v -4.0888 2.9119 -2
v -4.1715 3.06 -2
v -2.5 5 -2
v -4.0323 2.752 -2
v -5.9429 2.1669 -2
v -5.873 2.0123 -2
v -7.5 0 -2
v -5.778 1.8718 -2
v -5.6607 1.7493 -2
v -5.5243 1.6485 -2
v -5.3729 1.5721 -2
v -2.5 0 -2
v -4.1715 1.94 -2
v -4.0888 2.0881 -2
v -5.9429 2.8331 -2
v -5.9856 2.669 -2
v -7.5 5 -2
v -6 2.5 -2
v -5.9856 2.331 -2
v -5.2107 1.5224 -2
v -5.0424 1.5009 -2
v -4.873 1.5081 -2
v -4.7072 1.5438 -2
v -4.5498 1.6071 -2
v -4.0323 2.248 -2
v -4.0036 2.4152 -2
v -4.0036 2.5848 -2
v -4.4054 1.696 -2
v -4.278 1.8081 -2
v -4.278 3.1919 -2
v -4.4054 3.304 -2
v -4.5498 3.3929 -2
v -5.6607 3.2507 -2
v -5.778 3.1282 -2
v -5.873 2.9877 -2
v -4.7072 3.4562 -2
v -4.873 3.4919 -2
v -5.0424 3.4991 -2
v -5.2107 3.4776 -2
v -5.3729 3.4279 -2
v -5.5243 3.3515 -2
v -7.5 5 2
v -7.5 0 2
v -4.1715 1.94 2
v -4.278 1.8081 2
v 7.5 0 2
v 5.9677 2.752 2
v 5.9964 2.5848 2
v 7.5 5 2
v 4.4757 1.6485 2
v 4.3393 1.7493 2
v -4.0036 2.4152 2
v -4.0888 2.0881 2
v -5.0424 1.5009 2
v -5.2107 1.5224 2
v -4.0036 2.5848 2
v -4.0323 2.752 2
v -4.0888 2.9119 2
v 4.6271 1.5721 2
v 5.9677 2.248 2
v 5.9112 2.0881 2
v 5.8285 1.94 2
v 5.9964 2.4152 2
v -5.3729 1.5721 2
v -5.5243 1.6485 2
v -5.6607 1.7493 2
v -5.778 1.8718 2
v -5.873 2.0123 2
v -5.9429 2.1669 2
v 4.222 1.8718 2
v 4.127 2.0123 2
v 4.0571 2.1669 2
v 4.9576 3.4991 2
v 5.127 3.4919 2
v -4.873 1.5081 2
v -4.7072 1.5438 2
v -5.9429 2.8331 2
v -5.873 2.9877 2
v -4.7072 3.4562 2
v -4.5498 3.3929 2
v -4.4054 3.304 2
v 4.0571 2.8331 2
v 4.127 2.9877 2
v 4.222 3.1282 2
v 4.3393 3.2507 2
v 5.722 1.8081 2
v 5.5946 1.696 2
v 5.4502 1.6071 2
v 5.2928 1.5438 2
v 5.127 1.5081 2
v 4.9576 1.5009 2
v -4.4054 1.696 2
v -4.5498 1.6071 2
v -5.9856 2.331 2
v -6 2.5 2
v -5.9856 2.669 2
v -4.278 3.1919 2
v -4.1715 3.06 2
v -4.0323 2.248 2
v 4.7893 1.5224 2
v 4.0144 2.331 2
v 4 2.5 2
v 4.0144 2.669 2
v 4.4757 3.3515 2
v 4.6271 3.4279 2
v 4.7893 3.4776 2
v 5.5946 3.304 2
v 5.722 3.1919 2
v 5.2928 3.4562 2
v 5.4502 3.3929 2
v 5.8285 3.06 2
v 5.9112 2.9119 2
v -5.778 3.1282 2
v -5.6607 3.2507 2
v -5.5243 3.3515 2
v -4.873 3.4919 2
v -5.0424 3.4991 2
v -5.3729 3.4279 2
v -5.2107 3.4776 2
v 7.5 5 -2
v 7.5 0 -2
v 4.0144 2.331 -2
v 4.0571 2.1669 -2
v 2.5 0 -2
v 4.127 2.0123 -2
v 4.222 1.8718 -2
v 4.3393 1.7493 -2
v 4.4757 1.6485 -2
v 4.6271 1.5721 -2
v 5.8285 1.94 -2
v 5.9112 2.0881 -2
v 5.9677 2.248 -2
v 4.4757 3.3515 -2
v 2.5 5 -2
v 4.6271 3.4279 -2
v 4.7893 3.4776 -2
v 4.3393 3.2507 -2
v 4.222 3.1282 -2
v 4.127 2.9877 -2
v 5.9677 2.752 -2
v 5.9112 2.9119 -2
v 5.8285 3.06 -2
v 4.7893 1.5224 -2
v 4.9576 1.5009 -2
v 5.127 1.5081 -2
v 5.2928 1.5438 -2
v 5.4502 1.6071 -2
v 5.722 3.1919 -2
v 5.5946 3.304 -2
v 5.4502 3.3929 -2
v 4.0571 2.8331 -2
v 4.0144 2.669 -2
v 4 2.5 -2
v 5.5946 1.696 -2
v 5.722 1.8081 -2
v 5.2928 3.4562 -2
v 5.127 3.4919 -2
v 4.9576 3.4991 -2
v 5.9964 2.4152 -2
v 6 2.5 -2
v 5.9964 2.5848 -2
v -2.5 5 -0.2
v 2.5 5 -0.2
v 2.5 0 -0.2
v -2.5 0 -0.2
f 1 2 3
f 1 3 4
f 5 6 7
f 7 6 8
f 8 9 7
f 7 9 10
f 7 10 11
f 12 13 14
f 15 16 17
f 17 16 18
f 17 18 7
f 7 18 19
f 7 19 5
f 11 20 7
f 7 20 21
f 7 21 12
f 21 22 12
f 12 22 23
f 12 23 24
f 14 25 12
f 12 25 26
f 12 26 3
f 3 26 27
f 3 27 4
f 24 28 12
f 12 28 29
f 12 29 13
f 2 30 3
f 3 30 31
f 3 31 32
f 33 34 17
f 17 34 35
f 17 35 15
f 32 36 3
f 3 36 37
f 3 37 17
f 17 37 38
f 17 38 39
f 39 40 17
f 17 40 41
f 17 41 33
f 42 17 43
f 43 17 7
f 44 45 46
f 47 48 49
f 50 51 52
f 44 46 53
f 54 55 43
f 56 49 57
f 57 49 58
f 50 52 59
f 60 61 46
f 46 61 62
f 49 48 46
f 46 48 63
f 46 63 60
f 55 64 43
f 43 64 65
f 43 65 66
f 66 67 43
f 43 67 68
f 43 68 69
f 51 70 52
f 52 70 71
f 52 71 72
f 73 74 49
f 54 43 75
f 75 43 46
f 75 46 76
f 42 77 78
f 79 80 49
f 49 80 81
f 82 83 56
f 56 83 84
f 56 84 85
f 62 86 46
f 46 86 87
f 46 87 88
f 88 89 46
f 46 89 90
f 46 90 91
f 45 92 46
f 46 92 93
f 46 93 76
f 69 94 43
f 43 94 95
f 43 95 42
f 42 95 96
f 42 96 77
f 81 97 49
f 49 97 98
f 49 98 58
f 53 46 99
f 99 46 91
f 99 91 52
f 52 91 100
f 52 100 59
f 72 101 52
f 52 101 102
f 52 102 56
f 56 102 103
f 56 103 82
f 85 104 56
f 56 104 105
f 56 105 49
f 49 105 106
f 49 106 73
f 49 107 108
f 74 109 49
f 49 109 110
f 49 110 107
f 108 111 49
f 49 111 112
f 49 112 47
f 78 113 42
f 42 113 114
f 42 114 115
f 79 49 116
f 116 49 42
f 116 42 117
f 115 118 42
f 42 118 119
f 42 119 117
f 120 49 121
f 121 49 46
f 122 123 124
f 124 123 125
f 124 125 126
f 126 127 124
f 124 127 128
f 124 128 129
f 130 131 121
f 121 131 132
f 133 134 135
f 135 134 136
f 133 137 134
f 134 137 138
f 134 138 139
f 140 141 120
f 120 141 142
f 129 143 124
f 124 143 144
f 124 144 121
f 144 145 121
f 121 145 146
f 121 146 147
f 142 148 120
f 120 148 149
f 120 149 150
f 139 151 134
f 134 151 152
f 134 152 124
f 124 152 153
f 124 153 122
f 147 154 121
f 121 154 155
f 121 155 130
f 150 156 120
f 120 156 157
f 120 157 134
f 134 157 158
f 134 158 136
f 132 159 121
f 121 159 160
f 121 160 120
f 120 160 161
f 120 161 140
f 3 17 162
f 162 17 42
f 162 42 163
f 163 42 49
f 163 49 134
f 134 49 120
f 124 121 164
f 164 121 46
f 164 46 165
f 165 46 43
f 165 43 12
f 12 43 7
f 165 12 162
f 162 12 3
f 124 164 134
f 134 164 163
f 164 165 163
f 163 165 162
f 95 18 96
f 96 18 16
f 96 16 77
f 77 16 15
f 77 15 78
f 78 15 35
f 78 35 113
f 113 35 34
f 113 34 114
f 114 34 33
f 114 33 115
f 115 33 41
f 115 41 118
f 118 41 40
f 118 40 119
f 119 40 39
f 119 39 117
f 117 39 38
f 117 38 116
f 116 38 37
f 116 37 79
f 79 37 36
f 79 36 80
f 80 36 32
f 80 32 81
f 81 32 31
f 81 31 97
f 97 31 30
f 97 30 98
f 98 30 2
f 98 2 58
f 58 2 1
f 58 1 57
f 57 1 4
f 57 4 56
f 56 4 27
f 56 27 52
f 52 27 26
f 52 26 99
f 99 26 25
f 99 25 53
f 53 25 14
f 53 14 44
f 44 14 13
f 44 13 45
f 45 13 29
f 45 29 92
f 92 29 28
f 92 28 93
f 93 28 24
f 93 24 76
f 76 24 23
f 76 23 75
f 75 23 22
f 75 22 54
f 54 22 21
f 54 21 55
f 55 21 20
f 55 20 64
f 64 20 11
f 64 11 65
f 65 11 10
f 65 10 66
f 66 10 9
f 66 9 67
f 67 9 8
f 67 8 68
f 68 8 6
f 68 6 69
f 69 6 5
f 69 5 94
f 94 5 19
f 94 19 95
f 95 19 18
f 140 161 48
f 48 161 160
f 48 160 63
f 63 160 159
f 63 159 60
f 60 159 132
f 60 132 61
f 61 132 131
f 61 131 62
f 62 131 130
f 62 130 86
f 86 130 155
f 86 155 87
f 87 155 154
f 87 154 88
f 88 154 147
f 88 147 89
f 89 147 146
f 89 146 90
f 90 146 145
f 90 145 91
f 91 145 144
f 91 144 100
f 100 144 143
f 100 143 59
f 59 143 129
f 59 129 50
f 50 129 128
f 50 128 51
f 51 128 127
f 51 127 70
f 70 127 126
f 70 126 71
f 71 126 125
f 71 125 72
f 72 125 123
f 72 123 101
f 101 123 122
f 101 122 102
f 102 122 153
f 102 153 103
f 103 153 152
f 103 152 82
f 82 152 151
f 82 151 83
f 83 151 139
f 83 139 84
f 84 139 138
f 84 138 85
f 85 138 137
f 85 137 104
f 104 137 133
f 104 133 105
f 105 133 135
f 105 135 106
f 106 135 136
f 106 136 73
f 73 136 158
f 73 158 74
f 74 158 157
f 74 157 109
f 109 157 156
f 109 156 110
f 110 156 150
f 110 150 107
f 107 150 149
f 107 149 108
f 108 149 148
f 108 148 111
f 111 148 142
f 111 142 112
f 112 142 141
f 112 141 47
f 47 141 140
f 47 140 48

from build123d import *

# Parameters (mm, degrees)
ESQUISSE1_W             = 15
ESQUISSE1_H             = 4
BOSS_EXTRU_1_DEPTH      = 5
ESQUISSE2_W             = 5
ESQUISSE2_H             = 1.8
ENL_V_MAT_EXTRU_1_DEPTH = 5
ESQUISSE3_R             = 1
ENL_V_MAT_EXTRU_2_DEPTH = 5


with BuildPart() as part:
    # Esquisse1 → Boss.-Extru.1 (new body)
    with BuildSketch(Plane(origin=(0, 0, 0), x_dir=(1, 0, 0), z_dir=(0, 1, 0))):
        Rectangle(ESQUISSE1_W, ESQUISSE1_H)
    extrude(amount=BOSS_EXTRU_1_DEPTH)

    # Esquisse2 → Enlèv. mat.-Extru.1 (cut)
    with BuildSketch(Plane(origin=(0, 5, 0), x_dir=(1, 0, 0), z_dir=(0, 1, 0))):
        with Locations((0, 1.1)):
            Rectangle(ESQUISSE2_W, ESQUISSE2_H)
    extrude(amount=-ENL_V_MAT_EXTRU_1_DEPTH, mode=Mode.SUBTRACT)

    # Esquisse3 → Enlèv. mat.-Extru.2 (cut)
    with BuildSketch(Plane(origin=(0, 0, -2), x_dir=(-1, 0, 0), z_dir=(0, 0, -1))):
        with Locations((5, 2.5)):
            Circle(ESQUISSE3_R)
        with Locations((-5, 2.5)):
            Circle(ESQUISSE3_R)
    extrude(amount=-ENL_V_MAT_EXTRU_2_DEPTH, mode=Mode.SUBTRACT)


solid = part.part
